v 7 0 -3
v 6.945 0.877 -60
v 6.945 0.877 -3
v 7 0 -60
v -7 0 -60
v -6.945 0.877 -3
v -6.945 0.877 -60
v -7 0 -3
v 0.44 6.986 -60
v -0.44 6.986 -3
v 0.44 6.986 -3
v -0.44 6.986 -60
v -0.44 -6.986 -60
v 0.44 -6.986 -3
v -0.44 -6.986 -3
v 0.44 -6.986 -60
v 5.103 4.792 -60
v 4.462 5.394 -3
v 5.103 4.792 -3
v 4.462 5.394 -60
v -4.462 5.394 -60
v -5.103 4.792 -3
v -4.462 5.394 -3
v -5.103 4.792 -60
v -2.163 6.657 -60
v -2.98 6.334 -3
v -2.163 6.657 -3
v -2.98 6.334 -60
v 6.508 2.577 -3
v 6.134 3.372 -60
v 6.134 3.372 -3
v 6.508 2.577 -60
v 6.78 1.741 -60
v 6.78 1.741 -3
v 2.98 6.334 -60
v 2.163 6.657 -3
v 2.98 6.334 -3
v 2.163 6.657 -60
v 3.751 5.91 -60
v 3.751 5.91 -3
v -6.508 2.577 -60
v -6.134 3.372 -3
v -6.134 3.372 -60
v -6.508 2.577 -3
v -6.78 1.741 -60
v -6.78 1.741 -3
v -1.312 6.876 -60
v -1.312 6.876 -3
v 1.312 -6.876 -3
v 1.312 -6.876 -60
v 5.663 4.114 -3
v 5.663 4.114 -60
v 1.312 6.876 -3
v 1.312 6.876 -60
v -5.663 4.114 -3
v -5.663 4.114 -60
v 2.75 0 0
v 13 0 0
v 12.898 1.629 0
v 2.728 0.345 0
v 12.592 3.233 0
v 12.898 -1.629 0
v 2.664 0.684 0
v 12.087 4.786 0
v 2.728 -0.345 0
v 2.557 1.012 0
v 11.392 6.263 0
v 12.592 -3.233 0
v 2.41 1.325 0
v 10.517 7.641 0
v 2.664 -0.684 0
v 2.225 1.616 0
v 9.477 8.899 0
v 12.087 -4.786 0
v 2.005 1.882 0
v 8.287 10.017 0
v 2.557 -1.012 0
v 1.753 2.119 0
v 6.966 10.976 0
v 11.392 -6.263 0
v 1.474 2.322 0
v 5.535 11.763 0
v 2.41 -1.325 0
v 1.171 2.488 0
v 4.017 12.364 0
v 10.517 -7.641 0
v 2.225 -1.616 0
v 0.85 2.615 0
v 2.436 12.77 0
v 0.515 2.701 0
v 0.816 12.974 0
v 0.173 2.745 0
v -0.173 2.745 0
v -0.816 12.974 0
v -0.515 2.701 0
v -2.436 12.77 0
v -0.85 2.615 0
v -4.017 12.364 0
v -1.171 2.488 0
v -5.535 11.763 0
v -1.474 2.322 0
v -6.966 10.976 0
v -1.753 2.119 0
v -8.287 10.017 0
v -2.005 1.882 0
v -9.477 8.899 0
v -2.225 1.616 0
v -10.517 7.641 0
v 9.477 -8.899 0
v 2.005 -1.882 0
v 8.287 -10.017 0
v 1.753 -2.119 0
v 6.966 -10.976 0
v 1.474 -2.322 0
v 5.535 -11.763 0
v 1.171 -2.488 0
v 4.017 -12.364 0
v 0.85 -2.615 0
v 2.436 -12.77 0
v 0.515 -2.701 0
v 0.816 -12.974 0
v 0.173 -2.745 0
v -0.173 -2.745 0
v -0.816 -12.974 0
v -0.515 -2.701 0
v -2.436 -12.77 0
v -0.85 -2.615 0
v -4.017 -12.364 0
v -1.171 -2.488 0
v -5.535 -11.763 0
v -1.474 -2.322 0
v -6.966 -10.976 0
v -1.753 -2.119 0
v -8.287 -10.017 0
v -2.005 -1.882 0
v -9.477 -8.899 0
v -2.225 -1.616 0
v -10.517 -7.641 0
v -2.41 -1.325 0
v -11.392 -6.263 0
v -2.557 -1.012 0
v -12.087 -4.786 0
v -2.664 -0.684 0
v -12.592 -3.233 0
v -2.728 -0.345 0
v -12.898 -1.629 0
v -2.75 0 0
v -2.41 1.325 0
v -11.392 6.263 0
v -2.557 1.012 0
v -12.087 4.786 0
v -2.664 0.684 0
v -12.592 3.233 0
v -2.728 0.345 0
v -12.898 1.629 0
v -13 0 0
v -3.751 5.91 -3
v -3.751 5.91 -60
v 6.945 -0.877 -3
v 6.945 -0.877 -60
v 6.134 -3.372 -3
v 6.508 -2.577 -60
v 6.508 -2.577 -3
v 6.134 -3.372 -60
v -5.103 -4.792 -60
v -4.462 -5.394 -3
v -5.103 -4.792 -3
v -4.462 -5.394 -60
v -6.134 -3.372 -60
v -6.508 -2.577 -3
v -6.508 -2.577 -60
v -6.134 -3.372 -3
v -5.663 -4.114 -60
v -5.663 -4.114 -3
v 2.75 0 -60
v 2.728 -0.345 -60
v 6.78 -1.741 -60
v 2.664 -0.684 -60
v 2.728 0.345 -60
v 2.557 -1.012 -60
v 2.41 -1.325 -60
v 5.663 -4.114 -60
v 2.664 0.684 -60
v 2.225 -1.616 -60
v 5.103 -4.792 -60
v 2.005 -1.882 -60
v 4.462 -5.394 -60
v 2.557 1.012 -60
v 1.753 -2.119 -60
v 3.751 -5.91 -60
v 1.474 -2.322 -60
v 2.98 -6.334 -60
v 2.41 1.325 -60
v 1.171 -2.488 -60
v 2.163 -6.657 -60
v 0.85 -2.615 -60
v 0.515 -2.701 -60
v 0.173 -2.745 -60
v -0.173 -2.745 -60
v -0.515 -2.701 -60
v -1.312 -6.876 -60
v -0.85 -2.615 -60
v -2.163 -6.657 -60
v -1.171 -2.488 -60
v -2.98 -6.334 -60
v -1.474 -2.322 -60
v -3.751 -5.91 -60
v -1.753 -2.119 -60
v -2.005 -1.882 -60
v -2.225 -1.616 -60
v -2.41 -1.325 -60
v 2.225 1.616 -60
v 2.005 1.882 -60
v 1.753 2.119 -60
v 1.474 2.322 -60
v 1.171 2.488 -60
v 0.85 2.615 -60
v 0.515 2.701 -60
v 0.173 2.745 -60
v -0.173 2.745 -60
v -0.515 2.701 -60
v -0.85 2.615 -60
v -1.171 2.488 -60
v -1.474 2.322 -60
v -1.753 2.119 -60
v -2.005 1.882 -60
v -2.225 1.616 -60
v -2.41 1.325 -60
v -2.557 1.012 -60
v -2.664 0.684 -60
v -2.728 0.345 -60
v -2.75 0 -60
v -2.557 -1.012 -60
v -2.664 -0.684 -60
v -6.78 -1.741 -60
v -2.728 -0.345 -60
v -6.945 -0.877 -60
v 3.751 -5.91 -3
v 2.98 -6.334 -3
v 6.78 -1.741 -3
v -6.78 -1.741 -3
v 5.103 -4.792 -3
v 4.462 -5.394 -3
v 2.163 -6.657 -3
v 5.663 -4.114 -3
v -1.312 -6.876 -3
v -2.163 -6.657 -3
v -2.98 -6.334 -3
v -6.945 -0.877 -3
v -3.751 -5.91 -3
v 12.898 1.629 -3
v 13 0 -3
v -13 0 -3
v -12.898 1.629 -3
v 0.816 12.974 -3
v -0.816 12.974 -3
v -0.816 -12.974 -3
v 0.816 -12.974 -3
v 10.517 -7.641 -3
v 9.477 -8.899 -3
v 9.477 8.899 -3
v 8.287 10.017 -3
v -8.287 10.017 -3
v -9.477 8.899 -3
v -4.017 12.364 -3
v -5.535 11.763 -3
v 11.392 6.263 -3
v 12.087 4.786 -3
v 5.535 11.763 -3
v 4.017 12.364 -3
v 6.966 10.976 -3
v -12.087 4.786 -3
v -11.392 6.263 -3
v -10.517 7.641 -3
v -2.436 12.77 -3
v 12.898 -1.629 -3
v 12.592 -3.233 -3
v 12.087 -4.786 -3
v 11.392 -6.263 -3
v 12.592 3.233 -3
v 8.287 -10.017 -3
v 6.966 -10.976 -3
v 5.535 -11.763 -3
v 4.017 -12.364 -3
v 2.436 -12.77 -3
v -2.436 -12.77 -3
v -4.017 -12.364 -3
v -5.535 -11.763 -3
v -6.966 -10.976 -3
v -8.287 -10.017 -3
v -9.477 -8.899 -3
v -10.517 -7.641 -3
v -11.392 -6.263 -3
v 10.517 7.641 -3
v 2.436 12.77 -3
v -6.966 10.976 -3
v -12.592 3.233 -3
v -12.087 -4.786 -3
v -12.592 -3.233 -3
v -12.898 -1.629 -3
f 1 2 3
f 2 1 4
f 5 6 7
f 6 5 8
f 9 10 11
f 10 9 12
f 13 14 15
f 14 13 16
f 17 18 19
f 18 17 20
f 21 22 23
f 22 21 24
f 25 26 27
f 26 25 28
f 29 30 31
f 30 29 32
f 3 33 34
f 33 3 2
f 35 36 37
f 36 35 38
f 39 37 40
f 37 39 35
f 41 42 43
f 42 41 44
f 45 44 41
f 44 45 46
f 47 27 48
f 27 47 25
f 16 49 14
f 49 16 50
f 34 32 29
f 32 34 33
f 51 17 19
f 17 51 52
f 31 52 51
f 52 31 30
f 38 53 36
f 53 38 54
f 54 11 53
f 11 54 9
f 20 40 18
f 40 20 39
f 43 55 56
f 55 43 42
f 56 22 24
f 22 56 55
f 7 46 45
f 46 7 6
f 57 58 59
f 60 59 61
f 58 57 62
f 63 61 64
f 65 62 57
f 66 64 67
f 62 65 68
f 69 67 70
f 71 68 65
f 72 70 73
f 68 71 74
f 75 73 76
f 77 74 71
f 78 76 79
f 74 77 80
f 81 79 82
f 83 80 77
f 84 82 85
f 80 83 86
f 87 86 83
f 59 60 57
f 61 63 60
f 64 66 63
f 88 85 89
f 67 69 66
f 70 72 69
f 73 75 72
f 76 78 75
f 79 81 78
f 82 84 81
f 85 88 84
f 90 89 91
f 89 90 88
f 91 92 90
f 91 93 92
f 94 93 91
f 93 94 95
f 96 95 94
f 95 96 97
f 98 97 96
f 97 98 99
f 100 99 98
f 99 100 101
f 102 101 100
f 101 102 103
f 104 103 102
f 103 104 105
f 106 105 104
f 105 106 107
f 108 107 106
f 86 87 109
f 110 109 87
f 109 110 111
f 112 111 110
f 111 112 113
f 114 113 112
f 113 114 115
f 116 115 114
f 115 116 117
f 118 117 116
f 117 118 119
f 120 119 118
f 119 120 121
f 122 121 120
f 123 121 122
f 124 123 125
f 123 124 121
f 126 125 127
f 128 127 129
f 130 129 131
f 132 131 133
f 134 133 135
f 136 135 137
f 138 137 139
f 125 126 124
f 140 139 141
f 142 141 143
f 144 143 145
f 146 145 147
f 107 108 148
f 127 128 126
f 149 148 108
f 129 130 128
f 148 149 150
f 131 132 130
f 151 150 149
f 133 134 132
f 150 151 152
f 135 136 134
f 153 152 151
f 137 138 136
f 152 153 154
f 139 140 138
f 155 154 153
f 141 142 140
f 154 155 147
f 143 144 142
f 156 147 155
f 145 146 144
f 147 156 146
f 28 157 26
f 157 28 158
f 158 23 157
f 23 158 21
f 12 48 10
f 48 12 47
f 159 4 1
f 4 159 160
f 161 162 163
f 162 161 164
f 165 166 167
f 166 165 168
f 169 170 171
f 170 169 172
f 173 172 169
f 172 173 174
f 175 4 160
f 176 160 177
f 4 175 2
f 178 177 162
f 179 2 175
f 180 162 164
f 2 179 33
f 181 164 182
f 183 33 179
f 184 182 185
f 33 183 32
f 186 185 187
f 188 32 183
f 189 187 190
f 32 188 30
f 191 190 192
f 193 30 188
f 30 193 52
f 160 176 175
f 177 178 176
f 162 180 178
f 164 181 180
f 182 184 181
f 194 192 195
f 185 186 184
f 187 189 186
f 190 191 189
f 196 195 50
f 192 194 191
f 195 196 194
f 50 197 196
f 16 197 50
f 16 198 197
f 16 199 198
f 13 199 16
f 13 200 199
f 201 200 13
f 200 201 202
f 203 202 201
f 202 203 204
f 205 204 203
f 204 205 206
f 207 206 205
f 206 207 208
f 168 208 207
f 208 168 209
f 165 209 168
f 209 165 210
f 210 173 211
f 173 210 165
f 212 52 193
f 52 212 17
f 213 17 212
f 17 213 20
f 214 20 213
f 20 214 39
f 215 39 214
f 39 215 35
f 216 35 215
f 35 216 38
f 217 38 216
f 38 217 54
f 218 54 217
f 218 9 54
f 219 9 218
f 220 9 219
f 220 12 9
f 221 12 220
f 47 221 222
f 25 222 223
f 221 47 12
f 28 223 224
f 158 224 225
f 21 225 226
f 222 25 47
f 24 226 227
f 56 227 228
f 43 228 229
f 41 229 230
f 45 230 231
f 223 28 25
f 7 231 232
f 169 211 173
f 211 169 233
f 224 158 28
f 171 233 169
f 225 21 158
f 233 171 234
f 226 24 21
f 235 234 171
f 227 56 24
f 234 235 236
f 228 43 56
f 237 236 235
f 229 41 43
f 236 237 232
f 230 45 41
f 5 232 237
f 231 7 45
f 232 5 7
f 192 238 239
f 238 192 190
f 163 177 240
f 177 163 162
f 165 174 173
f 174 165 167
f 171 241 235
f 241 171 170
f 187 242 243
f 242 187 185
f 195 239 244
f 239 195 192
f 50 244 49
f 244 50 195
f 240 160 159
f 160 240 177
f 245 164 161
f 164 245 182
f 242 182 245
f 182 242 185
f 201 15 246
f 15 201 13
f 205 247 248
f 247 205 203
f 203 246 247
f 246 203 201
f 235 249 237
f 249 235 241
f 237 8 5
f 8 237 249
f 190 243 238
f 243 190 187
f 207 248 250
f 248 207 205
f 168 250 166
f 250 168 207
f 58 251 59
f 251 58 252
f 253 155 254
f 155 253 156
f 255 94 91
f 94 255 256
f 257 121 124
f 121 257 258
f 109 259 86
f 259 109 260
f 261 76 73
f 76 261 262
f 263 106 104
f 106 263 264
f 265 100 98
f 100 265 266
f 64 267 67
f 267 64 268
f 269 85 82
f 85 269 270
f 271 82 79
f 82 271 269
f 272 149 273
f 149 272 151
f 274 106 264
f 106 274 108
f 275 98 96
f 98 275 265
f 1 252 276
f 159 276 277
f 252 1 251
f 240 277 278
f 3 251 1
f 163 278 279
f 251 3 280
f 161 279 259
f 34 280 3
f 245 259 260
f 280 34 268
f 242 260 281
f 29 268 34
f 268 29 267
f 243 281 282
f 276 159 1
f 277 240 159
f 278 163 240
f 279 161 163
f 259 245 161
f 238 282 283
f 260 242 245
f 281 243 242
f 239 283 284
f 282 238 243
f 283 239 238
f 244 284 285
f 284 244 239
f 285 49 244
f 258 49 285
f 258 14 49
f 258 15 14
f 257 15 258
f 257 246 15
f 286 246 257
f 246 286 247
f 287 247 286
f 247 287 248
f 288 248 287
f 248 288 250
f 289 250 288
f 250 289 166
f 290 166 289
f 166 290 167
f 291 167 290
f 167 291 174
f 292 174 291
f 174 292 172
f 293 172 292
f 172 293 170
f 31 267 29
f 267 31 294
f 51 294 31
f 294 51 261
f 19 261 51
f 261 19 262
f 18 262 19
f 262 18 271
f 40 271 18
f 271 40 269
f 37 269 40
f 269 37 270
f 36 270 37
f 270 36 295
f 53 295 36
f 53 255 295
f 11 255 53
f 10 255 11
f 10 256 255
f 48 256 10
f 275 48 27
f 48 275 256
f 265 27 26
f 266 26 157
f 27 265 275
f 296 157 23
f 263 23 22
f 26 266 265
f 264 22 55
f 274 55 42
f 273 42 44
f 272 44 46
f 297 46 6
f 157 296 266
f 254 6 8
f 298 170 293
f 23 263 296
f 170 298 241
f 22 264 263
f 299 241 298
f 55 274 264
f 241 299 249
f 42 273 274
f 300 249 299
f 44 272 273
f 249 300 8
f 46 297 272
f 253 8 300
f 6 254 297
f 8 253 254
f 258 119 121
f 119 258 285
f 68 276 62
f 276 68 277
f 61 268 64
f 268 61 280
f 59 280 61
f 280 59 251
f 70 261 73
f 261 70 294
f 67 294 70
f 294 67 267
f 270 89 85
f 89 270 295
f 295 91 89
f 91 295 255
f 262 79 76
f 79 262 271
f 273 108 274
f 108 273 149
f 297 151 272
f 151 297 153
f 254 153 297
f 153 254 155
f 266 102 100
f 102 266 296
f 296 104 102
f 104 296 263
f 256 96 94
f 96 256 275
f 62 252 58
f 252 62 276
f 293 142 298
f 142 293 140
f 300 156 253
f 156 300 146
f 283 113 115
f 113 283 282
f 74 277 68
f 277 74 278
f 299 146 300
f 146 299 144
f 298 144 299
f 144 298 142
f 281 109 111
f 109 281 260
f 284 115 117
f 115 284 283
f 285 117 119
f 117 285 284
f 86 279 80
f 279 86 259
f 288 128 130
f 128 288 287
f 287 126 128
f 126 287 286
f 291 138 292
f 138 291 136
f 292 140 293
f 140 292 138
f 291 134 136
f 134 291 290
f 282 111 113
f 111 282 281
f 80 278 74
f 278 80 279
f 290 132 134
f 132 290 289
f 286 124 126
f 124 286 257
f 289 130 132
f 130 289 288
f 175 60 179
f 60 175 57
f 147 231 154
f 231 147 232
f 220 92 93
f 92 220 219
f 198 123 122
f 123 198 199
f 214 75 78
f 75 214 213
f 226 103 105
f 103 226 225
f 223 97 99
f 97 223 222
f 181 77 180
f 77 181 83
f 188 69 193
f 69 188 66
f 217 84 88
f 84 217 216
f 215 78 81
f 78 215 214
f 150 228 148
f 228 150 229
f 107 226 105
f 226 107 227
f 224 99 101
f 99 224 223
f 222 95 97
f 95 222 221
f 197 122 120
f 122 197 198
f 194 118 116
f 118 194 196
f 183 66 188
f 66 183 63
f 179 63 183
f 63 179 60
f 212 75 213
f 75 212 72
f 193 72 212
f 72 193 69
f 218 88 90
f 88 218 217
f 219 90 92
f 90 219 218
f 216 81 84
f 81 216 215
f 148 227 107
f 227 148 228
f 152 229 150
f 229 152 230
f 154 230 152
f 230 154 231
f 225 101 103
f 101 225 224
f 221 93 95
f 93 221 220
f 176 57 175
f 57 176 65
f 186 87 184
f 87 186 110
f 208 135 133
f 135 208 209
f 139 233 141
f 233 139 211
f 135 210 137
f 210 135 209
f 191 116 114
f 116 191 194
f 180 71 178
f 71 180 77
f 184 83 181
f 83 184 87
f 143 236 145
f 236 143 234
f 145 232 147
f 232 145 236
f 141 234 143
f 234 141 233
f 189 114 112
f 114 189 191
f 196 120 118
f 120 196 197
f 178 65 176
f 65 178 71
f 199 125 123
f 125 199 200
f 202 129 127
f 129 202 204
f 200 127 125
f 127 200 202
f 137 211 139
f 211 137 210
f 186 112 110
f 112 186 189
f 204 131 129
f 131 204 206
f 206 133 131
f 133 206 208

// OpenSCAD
$fn = 50;


difference() {
	union() {
		translate(v = [0, 0, -60.0000000000]) {
			cylinder(h = 60, r = 7.0000000000);
		}
		translate(v = [0, 0, -3.0000000000]) {
			cylinder(h = 3, r = 13.0000000000);
		}
	}
	union() {
		#translate(v = [0, 0, -60]) {
			cylinder(h = 60, r = 2.7500000000);
		}
	}
}
